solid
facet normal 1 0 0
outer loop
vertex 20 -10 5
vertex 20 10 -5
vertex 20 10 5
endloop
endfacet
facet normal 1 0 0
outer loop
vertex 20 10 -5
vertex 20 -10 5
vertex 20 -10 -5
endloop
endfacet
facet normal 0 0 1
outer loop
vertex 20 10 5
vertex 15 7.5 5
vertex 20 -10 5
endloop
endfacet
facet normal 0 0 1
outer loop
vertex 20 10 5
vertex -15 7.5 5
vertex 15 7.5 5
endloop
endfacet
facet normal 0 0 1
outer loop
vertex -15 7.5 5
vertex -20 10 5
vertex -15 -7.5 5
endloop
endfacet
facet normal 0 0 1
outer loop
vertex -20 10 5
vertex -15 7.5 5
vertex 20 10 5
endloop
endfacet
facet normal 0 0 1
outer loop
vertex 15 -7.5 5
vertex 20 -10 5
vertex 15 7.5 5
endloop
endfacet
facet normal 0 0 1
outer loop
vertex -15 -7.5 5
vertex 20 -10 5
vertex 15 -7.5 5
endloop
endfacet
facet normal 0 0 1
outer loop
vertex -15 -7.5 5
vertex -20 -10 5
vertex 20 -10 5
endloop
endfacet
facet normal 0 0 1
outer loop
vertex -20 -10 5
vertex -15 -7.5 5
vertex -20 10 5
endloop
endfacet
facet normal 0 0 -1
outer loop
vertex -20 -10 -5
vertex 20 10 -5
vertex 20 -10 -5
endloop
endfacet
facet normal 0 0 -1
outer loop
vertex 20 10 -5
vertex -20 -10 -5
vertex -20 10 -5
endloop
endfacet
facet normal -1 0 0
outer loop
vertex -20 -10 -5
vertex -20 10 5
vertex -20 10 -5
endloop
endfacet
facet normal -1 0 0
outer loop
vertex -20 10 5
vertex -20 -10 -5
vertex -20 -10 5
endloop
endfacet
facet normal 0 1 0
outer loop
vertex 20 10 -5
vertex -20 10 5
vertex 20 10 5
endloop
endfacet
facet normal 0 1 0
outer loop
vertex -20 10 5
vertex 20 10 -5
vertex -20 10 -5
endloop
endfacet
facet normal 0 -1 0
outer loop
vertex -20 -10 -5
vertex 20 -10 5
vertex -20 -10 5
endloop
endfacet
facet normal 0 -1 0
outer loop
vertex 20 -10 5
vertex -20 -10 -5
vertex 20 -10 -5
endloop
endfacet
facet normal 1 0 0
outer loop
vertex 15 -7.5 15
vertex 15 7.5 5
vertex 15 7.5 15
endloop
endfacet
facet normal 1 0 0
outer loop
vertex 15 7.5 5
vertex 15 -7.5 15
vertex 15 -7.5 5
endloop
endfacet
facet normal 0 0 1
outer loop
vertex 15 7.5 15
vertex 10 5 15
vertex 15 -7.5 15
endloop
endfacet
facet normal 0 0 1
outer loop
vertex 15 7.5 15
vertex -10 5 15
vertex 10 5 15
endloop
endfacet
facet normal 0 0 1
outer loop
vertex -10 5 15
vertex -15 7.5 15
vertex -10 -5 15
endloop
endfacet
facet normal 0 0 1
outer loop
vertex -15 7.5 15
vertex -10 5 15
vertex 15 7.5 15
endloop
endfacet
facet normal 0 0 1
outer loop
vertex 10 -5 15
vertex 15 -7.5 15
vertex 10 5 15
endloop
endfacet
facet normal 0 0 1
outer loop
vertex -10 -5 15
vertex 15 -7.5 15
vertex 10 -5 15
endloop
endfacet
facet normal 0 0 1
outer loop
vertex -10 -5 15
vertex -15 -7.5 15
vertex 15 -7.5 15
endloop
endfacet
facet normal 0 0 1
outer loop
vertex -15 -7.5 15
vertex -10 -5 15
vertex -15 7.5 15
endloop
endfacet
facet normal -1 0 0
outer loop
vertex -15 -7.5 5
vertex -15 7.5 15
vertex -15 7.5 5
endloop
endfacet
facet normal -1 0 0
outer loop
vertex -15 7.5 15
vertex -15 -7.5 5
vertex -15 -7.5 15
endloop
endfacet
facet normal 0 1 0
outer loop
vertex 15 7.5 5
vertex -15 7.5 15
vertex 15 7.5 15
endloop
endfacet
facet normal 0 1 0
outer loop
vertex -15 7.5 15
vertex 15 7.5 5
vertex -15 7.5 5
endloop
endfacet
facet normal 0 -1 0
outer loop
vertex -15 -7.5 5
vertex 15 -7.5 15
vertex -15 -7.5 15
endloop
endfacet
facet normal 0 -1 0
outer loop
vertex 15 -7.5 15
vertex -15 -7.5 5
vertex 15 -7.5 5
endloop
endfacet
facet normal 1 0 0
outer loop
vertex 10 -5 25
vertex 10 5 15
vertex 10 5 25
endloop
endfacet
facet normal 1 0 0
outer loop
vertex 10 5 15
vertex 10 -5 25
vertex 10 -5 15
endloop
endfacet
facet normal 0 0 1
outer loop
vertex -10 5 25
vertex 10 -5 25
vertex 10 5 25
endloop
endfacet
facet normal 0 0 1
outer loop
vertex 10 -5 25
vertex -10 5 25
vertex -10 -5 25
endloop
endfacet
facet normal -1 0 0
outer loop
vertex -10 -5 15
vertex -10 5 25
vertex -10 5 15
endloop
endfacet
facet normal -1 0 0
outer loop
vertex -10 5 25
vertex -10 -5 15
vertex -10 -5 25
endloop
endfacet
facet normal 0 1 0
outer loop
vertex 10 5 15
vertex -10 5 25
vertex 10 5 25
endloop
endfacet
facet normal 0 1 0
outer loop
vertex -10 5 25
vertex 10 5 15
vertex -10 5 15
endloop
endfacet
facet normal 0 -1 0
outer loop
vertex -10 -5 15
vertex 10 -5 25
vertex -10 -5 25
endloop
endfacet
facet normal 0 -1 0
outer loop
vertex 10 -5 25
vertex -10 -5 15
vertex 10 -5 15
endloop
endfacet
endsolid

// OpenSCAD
// Dimensions for the cuboids
large_cuboid_size = [40, 20, 10];  // Length, Width, Height
medium_cuboid_size = [30, 15, 10];
small_cuboid_size = [20, 10, 10];

// Positions for the cuboids based on the layer structure
large_cuboid_position = [0, 0, 0];  // Base layer
medium_cuboid_position = [0, 0, large_cuboid_size[2]];  // Above the large cuboid
small_cuboid_position = [0, 0, large_cuboid_size[2] + medium_cuboid_size[2]];  // Above the medium cuboid

// Large cuboid (base) - unified as a single piece
translate(large_cuboid_position)
    cube(large_cuboid_size, center = true);

// Medium cuboid (intermediate layer) - restored as a separate component
translate(medium_cuboid_position)
    cube(medium_cuboid_size, center = true);

// Small cuboid (topmost layer) - restored as a separate component
translate(small_cuboid_position)
    cube(small_cuboid_size, center = true);
